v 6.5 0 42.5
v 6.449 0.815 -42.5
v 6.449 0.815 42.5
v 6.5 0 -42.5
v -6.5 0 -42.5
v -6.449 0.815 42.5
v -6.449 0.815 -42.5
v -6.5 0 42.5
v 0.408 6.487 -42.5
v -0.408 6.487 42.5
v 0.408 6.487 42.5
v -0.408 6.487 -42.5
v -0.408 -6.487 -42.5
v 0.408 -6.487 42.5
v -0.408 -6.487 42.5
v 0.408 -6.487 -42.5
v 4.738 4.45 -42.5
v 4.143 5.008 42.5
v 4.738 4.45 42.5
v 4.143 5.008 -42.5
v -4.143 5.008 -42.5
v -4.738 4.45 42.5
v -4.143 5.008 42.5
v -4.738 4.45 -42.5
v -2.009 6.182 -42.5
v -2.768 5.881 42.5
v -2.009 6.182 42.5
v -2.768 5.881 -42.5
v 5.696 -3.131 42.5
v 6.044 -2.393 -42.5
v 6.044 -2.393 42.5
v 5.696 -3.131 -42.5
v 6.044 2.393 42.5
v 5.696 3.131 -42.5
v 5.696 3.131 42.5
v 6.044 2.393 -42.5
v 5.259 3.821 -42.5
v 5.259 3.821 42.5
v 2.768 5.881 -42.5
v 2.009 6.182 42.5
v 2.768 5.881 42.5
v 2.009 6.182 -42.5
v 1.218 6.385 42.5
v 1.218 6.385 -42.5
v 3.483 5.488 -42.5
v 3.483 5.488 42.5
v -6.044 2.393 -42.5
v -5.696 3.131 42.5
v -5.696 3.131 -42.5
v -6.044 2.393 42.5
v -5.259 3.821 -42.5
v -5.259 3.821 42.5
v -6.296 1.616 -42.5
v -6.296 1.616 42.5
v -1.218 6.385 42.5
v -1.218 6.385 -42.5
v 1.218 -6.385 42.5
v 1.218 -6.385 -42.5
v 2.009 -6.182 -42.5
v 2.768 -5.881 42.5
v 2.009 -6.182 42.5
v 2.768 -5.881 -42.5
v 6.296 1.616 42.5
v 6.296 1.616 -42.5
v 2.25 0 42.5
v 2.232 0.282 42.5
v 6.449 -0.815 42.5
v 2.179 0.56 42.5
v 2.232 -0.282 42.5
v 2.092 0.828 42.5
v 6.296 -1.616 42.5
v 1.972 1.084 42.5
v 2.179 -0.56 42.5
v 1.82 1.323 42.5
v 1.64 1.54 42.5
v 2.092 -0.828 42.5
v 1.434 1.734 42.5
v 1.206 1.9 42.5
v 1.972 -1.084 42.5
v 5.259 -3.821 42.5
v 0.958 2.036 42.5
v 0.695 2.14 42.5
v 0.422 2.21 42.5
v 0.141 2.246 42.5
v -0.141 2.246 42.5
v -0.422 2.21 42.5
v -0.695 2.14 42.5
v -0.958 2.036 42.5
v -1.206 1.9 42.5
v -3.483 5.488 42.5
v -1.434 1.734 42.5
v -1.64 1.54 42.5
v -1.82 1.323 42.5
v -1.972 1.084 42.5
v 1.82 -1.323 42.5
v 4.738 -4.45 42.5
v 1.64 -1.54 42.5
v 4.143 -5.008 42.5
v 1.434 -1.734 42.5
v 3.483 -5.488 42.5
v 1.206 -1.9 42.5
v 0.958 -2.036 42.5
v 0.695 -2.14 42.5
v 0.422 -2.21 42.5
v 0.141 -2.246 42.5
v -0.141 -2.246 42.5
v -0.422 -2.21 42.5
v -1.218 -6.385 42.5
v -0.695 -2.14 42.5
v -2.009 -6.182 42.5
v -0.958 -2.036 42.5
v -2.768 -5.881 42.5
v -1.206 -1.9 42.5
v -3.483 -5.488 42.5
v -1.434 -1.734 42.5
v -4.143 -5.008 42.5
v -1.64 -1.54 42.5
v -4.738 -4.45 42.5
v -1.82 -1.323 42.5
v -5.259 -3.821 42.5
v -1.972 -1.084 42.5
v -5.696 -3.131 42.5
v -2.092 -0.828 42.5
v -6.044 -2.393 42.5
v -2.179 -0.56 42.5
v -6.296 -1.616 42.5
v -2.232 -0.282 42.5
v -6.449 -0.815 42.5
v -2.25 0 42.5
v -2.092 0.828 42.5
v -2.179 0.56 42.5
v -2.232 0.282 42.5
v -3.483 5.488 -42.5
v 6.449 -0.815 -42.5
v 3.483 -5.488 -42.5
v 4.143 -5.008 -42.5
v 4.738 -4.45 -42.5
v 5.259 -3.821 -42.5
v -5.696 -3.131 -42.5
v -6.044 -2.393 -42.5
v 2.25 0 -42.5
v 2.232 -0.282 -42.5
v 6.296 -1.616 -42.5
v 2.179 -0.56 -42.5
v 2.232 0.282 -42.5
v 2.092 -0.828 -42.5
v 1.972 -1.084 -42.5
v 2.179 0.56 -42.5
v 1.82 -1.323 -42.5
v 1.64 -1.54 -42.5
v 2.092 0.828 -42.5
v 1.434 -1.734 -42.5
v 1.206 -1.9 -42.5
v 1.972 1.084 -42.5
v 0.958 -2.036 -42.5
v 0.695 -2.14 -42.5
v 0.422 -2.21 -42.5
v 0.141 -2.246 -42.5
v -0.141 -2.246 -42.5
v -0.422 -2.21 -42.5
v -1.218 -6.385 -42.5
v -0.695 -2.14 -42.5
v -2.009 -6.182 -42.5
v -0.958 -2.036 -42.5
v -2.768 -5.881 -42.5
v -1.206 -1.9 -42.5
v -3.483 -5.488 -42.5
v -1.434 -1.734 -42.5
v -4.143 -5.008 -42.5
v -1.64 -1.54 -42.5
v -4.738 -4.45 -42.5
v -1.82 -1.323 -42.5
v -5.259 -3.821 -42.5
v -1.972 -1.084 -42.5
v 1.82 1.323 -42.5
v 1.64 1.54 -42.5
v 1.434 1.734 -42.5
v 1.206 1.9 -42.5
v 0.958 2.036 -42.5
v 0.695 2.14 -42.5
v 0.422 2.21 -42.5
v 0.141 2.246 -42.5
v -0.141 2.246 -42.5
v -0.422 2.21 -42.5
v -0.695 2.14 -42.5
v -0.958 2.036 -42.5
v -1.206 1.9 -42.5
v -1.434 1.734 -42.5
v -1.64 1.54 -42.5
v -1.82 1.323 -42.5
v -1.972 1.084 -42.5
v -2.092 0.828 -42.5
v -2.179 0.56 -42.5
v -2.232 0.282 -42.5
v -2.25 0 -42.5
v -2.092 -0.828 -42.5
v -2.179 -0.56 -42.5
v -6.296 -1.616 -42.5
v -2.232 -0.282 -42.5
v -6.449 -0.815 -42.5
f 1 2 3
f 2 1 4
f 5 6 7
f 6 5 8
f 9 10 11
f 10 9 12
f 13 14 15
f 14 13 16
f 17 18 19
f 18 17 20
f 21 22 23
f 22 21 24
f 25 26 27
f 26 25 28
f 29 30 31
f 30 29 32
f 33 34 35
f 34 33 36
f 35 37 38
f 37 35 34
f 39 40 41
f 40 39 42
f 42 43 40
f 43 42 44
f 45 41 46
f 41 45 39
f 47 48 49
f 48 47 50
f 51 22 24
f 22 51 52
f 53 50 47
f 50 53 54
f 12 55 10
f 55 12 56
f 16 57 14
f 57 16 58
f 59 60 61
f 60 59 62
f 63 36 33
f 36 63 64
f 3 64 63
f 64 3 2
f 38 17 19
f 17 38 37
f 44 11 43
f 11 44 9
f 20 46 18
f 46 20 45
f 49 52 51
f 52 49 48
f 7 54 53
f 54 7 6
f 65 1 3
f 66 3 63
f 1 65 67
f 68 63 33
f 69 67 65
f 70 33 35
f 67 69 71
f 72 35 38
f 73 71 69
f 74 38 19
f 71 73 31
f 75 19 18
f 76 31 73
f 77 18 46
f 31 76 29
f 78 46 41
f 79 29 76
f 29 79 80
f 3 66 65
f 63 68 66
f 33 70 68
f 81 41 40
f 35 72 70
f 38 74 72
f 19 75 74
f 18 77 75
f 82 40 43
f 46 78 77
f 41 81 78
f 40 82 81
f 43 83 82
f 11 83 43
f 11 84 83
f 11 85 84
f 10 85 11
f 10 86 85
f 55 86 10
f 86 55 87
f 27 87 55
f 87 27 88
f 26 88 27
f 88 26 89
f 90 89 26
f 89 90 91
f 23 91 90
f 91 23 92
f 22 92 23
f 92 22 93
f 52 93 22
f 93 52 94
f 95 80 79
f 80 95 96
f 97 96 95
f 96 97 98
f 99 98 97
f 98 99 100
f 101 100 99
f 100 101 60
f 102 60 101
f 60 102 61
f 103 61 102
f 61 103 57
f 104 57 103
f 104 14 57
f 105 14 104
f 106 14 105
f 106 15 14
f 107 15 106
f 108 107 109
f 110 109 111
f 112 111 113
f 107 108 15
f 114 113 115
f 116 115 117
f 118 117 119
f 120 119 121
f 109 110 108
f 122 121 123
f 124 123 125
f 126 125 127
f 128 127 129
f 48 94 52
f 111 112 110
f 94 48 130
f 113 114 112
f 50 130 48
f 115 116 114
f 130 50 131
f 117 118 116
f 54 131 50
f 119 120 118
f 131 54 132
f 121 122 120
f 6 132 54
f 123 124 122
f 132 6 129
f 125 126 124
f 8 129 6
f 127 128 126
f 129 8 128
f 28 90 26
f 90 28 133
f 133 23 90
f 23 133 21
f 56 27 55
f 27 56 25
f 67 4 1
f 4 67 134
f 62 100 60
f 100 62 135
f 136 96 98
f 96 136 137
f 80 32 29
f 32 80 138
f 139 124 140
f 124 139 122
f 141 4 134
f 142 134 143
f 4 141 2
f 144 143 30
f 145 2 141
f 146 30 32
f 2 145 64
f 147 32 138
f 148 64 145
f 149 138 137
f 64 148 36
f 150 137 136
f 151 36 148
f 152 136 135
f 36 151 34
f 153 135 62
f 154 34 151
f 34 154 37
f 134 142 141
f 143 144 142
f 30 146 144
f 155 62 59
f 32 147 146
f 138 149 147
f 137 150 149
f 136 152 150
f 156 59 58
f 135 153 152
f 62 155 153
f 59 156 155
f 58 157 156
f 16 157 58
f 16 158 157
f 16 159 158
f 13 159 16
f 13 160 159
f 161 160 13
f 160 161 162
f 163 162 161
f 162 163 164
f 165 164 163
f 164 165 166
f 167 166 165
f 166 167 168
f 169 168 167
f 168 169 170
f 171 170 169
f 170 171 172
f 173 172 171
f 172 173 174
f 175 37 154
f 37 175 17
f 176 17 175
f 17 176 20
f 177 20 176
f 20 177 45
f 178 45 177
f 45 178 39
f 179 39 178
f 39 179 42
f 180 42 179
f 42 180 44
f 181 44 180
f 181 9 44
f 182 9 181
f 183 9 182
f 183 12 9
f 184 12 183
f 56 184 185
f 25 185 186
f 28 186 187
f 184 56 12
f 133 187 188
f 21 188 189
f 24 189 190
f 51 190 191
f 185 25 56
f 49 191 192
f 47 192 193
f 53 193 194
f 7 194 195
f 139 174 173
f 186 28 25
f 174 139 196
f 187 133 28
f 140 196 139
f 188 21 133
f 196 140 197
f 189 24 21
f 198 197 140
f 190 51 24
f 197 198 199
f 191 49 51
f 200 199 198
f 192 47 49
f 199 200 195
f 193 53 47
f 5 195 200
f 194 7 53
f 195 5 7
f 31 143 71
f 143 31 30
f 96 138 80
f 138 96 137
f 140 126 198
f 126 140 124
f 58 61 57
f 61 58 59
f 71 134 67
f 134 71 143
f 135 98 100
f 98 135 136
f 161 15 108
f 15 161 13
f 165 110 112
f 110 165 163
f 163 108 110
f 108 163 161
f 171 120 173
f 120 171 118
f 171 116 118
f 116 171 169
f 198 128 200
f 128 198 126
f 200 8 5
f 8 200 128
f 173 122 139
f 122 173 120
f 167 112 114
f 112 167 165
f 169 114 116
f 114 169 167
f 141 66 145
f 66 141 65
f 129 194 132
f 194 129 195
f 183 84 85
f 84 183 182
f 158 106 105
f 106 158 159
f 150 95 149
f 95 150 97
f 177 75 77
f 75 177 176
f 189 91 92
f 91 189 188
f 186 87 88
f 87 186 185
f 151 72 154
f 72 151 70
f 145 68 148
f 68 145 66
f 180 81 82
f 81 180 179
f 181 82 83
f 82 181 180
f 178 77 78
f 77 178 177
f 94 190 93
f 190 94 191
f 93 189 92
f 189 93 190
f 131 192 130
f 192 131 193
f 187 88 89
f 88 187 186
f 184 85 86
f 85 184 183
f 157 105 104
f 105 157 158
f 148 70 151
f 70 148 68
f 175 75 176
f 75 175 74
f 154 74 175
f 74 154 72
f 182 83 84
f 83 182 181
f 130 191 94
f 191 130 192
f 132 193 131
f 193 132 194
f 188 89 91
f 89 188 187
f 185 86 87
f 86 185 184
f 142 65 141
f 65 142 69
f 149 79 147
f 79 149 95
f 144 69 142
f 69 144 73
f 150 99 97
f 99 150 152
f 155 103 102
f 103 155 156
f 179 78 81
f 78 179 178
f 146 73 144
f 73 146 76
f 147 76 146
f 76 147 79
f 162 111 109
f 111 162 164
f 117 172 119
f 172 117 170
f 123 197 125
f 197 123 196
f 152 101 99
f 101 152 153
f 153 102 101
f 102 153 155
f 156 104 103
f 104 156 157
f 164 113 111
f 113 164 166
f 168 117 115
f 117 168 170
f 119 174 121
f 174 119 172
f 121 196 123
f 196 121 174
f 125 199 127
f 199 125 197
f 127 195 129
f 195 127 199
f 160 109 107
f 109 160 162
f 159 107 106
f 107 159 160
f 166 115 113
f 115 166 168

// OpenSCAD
$fn = 50;


difference() {
	union() {
		translate(v = [0, 0, -42.5000000000]) {
			cylinder(h = 85, r = 6.5000000000);
		}
	}
	union() {
		translate(v = [0, 0, -100.0000000000]) {
			cylinder(h = 200, r = 2.2500000000);
		}
	}
}
